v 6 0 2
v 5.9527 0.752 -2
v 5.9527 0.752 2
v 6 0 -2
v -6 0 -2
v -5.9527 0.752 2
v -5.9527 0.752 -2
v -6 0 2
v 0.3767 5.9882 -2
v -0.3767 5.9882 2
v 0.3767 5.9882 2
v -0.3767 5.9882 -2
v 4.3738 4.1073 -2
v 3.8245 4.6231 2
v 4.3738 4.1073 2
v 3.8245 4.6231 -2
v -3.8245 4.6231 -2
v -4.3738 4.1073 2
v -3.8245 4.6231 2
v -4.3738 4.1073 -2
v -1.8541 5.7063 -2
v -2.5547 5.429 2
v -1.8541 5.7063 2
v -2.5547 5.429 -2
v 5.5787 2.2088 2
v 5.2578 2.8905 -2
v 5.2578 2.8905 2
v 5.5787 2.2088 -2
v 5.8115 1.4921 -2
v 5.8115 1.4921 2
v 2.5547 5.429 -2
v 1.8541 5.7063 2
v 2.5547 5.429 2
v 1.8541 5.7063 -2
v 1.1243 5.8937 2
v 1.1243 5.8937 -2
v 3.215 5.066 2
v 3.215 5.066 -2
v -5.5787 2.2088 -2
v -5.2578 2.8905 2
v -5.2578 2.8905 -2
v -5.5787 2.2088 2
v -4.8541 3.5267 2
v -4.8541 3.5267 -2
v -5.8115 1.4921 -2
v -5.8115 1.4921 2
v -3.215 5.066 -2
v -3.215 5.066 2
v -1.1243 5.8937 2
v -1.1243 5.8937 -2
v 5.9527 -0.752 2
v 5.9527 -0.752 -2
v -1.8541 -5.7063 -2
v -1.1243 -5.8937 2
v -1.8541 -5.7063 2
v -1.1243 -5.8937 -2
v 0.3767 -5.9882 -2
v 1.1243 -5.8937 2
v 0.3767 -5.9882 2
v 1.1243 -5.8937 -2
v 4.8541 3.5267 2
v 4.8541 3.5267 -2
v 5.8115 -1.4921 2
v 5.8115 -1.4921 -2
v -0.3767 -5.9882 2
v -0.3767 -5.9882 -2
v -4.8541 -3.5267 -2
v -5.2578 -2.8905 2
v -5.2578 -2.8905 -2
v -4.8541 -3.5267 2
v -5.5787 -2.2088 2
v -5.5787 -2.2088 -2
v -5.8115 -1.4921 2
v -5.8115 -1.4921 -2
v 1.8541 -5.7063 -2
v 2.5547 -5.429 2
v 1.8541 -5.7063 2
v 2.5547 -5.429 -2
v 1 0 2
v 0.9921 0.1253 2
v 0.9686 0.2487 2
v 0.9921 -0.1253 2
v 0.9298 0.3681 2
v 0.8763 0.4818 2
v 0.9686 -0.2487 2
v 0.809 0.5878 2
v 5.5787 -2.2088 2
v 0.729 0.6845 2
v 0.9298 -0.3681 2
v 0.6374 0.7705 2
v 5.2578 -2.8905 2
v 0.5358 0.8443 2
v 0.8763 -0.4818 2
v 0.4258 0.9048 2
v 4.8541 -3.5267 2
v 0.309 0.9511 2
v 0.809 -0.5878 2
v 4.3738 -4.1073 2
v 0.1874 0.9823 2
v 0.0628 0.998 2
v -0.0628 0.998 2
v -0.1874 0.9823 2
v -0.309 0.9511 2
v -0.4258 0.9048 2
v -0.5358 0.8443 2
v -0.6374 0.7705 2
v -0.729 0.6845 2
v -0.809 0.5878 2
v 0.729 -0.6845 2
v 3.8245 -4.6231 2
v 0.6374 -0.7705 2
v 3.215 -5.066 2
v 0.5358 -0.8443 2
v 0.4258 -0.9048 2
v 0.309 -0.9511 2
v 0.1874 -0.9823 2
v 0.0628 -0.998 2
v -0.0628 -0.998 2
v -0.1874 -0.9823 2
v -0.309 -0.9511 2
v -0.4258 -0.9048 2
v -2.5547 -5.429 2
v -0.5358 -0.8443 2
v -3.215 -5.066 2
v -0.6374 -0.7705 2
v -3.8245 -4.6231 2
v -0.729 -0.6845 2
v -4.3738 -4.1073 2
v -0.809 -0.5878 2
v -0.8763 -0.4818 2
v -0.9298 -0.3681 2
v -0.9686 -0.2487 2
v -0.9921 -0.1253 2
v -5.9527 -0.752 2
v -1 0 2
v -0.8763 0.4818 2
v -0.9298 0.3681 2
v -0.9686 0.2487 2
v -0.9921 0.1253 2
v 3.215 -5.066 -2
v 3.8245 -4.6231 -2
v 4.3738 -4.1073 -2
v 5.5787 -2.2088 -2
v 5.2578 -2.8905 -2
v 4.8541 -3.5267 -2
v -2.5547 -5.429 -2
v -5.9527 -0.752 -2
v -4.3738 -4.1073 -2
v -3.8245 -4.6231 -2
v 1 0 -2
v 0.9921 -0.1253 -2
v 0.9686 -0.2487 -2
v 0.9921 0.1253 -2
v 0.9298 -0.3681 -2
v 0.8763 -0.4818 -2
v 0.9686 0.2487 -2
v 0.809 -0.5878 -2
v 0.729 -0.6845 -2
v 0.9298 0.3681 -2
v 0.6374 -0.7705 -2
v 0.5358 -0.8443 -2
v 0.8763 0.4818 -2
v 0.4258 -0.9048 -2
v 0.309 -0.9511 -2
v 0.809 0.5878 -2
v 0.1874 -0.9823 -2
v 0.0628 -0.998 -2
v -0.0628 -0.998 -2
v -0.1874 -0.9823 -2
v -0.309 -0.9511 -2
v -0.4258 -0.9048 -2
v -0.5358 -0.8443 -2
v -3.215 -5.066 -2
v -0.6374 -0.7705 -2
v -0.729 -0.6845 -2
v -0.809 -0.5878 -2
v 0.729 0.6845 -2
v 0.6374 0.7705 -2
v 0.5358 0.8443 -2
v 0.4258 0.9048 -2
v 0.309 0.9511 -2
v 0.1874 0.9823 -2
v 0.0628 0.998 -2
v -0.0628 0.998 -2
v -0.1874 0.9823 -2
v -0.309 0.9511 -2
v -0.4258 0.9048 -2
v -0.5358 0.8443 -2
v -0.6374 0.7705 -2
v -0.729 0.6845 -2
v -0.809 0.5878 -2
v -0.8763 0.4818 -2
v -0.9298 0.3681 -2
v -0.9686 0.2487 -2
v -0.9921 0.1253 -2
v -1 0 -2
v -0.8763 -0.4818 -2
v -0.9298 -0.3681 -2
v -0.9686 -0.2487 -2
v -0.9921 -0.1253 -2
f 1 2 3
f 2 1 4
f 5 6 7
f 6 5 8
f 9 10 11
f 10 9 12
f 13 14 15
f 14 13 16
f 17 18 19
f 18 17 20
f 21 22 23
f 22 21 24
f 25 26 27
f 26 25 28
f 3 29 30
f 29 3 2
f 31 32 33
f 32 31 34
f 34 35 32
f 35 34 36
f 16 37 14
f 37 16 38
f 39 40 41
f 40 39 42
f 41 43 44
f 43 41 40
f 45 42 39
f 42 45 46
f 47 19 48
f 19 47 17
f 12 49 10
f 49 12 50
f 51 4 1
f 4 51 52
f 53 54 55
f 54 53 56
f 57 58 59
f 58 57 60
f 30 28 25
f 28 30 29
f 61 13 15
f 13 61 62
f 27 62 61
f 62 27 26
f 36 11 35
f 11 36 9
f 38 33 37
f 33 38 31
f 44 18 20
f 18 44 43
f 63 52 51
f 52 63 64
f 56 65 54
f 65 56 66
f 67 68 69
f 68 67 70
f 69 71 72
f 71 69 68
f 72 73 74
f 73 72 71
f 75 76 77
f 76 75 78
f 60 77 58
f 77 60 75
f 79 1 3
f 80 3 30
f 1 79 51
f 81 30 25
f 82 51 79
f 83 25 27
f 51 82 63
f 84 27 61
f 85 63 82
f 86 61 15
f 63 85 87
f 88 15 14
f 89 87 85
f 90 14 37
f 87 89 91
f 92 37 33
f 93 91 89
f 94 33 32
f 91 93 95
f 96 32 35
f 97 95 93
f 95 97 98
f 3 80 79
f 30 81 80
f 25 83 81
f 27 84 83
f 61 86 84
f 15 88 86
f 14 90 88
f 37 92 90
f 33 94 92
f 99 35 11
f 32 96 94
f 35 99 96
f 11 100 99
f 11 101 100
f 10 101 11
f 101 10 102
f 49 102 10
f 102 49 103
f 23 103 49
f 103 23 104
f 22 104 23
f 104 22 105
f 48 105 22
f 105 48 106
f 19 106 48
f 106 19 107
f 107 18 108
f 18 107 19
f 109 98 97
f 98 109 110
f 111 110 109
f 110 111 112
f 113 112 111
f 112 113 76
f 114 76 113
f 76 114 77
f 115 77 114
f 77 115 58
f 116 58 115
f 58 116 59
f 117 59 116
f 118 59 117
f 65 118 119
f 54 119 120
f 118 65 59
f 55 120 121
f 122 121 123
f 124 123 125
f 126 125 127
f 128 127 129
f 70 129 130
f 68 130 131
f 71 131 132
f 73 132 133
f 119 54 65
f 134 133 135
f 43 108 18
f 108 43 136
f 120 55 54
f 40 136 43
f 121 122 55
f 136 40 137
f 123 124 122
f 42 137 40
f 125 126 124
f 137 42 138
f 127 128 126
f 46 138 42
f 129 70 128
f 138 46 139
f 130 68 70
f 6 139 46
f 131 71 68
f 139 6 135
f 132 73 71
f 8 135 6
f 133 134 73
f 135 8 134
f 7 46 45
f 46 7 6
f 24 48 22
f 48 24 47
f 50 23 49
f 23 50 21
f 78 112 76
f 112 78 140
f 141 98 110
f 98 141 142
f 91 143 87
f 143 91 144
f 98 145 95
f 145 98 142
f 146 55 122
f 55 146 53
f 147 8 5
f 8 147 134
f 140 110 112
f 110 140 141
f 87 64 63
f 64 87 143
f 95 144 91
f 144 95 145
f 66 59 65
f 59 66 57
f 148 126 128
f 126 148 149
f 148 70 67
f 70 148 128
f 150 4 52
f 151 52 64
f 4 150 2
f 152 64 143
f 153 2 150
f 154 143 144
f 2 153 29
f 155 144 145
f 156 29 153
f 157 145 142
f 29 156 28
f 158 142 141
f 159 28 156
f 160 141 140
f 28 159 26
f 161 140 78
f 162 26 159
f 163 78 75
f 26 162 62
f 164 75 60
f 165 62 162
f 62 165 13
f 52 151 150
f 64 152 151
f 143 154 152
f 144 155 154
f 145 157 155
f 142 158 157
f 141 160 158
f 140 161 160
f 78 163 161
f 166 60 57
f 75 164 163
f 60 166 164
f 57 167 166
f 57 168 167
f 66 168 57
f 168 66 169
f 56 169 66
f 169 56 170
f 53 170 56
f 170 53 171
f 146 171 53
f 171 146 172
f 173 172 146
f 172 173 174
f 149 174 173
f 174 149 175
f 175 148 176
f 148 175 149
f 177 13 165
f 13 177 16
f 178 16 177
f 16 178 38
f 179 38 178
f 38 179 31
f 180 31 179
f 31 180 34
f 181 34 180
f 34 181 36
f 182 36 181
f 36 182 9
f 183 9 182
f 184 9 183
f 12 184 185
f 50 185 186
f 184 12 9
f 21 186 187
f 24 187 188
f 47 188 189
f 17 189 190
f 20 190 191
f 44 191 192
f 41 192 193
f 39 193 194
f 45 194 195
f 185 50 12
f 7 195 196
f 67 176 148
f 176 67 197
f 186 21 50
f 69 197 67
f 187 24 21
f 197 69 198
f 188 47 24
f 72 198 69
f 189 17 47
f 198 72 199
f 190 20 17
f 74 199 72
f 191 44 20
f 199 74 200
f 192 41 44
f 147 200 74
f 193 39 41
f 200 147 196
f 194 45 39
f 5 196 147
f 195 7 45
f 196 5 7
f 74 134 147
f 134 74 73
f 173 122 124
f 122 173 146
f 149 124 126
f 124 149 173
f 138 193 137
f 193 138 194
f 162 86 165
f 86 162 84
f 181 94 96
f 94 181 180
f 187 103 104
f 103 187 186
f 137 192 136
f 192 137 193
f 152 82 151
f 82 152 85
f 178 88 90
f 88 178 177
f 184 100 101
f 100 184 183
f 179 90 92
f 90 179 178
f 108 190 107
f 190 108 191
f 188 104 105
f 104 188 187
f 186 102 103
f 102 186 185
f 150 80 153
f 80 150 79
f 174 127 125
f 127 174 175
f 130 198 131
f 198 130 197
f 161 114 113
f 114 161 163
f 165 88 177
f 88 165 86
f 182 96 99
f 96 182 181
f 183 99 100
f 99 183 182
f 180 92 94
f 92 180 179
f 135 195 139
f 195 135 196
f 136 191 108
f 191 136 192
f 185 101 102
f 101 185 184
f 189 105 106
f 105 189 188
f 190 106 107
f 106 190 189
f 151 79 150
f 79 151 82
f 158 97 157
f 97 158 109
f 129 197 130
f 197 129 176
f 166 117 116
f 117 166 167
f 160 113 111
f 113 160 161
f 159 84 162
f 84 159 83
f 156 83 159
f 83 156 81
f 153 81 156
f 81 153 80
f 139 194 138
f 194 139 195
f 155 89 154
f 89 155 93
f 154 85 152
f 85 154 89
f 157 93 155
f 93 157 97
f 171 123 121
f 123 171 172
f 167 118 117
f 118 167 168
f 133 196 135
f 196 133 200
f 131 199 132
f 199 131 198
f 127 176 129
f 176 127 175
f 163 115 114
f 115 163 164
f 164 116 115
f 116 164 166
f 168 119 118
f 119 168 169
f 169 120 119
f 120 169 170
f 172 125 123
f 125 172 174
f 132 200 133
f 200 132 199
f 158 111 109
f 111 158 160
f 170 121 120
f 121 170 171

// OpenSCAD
$fn = 50;


difference() {
	union() {
		translate(v = [0, 0, -2.0000000000]) {
			cylinder(h = 4, r = 6.0000000000);
		}
	}
	union() {
		translate(v = [0, 0, -100.0000000000]) {
			cylinder(h = 200, r = 1.0000000000);
		}
	}
}
